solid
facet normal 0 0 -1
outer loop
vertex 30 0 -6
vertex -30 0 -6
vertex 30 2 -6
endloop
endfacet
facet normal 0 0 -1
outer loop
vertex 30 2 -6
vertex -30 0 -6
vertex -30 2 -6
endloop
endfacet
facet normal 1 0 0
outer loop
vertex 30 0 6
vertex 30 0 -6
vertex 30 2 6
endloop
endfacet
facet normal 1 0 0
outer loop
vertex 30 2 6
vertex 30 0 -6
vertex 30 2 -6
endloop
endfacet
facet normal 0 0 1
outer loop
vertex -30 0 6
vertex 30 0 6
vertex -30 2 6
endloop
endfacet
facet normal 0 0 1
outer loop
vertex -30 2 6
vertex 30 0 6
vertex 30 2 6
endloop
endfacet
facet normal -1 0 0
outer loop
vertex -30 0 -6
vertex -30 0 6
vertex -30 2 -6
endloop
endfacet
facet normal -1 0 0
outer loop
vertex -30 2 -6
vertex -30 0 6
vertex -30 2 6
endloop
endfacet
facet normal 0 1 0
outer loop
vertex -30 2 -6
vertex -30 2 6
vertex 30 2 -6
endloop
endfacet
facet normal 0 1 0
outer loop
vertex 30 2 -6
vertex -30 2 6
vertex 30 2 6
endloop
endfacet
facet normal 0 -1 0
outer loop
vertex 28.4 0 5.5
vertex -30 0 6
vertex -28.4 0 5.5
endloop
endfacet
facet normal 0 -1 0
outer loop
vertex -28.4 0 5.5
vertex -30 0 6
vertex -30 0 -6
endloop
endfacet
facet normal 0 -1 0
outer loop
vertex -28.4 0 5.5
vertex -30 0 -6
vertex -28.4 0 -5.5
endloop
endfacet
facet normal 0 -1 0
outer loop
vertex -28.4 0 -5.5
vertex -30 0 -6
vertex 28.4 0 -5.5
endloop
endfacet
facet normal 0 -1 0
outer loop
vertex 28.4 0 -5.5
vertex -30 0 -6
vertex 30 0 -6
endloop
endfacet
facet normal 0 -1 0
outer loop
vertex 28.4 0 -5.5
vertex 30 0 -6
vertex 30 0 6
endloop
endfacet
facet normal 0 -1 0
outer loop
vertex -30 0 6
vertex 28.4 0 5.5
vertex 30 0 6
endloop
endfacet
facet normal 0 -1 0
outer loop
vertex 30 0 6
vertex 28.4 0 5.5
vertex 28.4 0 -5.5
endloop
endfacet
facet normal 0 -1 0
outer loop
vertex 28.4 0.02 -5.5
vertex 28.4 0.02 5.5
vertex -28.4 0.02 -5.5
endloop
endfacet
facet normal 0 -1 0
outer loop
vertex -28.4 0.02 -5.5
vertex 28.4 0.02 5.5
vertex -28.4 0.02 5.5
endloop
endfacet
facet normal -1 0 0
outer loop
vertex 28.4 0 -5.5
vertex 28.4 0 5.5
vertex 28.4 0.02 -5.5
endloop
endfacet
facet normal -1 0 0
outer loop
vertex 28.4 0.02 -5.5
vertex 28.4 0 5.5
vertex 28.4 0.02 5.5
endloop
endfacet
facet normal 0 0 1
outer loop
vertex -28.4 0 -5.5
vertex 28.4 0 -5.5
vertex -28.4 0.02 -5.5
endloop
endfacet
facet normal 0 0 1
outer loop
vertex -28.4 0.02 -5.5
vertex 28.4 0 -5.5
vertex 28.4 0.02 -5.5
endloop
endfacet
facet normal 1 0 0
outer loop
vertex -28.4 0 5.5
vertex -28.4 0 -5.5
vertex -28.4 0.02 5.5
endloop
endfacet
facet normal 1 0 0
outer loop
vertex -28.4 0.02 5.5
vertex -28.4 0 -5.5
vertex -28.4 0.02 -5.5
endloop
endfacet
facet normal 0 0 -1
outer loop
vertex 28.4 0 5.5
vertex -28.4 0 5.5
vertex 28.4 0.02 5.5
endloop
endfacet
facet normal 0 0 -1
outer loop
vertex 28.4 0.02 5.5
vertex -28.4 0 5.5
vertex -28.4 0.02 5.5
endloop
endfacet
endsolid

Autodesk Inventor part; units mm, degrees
ref_plane "YZ Plane" through (0, 0, 0) normal (1, 0, 0) x (0, 1, 0)
ref_plane "XZ Plane" through (0, 0, 0) normal (0, 1, 0) x (-1, 0, 0)
ref_plane "XY Plane" through (0, 0, 0) normal (0, 0, 1) x (1, 0, 0)
sketch "Sketch1" plane through (0, 0, 0) normal (0, 1, 0) x (-1, 0, 0)
  line L0 (30, 6) -> (-30, 6)
  line L1 (-30, 6) -> (-30, -6)
  line L2 (-30, -6) -> (30, -6)
  line L3 (30, -6) -> (30, 6)
  line L4 (30, 6) -> (-30, -6) construction
  line L5 (-30, 6) -> (30, -6) construction
  point P0 (0, 0)
  dimension "d0" = 60
  dimension "d1" = 12
extrude "Extrusion1" add sketch "Sketch1" along normal blind 2
sketch "Sketch2" plane through (0, 0, 0) normal (0, -1, 0) x (1, 0, 0)
  line L0 (28.4, 5.5) -> (-28.4, 5.5)
  line L1 (-28.4, 5.5) -> (-28.4, -5.5)
  line L2 (-28.4, -5.5) -> (28.4, -5.5)
  line L3 (28.4, -5.5) -> (28.4, 5.5)
  line L4 (28.4, 5.5) -> (-28.4, -5.5) construction
  line L5 (-28.4, 5.5) -> (28.4, -5.5) construction
  line L6 (30, -6) -> (-30, -6) construction
  line L7 (30, 6) -> (30, -6) construction
  point P0 (0, 0)
  dimension "d4" = 0.5
  dimension "d5" = 1.6
extrude "Extrusion2" cut sketch "Sketch2" against normal blind 0.02
properties part number "Acrylic Plate" material "Polycarbonate, Clear"
